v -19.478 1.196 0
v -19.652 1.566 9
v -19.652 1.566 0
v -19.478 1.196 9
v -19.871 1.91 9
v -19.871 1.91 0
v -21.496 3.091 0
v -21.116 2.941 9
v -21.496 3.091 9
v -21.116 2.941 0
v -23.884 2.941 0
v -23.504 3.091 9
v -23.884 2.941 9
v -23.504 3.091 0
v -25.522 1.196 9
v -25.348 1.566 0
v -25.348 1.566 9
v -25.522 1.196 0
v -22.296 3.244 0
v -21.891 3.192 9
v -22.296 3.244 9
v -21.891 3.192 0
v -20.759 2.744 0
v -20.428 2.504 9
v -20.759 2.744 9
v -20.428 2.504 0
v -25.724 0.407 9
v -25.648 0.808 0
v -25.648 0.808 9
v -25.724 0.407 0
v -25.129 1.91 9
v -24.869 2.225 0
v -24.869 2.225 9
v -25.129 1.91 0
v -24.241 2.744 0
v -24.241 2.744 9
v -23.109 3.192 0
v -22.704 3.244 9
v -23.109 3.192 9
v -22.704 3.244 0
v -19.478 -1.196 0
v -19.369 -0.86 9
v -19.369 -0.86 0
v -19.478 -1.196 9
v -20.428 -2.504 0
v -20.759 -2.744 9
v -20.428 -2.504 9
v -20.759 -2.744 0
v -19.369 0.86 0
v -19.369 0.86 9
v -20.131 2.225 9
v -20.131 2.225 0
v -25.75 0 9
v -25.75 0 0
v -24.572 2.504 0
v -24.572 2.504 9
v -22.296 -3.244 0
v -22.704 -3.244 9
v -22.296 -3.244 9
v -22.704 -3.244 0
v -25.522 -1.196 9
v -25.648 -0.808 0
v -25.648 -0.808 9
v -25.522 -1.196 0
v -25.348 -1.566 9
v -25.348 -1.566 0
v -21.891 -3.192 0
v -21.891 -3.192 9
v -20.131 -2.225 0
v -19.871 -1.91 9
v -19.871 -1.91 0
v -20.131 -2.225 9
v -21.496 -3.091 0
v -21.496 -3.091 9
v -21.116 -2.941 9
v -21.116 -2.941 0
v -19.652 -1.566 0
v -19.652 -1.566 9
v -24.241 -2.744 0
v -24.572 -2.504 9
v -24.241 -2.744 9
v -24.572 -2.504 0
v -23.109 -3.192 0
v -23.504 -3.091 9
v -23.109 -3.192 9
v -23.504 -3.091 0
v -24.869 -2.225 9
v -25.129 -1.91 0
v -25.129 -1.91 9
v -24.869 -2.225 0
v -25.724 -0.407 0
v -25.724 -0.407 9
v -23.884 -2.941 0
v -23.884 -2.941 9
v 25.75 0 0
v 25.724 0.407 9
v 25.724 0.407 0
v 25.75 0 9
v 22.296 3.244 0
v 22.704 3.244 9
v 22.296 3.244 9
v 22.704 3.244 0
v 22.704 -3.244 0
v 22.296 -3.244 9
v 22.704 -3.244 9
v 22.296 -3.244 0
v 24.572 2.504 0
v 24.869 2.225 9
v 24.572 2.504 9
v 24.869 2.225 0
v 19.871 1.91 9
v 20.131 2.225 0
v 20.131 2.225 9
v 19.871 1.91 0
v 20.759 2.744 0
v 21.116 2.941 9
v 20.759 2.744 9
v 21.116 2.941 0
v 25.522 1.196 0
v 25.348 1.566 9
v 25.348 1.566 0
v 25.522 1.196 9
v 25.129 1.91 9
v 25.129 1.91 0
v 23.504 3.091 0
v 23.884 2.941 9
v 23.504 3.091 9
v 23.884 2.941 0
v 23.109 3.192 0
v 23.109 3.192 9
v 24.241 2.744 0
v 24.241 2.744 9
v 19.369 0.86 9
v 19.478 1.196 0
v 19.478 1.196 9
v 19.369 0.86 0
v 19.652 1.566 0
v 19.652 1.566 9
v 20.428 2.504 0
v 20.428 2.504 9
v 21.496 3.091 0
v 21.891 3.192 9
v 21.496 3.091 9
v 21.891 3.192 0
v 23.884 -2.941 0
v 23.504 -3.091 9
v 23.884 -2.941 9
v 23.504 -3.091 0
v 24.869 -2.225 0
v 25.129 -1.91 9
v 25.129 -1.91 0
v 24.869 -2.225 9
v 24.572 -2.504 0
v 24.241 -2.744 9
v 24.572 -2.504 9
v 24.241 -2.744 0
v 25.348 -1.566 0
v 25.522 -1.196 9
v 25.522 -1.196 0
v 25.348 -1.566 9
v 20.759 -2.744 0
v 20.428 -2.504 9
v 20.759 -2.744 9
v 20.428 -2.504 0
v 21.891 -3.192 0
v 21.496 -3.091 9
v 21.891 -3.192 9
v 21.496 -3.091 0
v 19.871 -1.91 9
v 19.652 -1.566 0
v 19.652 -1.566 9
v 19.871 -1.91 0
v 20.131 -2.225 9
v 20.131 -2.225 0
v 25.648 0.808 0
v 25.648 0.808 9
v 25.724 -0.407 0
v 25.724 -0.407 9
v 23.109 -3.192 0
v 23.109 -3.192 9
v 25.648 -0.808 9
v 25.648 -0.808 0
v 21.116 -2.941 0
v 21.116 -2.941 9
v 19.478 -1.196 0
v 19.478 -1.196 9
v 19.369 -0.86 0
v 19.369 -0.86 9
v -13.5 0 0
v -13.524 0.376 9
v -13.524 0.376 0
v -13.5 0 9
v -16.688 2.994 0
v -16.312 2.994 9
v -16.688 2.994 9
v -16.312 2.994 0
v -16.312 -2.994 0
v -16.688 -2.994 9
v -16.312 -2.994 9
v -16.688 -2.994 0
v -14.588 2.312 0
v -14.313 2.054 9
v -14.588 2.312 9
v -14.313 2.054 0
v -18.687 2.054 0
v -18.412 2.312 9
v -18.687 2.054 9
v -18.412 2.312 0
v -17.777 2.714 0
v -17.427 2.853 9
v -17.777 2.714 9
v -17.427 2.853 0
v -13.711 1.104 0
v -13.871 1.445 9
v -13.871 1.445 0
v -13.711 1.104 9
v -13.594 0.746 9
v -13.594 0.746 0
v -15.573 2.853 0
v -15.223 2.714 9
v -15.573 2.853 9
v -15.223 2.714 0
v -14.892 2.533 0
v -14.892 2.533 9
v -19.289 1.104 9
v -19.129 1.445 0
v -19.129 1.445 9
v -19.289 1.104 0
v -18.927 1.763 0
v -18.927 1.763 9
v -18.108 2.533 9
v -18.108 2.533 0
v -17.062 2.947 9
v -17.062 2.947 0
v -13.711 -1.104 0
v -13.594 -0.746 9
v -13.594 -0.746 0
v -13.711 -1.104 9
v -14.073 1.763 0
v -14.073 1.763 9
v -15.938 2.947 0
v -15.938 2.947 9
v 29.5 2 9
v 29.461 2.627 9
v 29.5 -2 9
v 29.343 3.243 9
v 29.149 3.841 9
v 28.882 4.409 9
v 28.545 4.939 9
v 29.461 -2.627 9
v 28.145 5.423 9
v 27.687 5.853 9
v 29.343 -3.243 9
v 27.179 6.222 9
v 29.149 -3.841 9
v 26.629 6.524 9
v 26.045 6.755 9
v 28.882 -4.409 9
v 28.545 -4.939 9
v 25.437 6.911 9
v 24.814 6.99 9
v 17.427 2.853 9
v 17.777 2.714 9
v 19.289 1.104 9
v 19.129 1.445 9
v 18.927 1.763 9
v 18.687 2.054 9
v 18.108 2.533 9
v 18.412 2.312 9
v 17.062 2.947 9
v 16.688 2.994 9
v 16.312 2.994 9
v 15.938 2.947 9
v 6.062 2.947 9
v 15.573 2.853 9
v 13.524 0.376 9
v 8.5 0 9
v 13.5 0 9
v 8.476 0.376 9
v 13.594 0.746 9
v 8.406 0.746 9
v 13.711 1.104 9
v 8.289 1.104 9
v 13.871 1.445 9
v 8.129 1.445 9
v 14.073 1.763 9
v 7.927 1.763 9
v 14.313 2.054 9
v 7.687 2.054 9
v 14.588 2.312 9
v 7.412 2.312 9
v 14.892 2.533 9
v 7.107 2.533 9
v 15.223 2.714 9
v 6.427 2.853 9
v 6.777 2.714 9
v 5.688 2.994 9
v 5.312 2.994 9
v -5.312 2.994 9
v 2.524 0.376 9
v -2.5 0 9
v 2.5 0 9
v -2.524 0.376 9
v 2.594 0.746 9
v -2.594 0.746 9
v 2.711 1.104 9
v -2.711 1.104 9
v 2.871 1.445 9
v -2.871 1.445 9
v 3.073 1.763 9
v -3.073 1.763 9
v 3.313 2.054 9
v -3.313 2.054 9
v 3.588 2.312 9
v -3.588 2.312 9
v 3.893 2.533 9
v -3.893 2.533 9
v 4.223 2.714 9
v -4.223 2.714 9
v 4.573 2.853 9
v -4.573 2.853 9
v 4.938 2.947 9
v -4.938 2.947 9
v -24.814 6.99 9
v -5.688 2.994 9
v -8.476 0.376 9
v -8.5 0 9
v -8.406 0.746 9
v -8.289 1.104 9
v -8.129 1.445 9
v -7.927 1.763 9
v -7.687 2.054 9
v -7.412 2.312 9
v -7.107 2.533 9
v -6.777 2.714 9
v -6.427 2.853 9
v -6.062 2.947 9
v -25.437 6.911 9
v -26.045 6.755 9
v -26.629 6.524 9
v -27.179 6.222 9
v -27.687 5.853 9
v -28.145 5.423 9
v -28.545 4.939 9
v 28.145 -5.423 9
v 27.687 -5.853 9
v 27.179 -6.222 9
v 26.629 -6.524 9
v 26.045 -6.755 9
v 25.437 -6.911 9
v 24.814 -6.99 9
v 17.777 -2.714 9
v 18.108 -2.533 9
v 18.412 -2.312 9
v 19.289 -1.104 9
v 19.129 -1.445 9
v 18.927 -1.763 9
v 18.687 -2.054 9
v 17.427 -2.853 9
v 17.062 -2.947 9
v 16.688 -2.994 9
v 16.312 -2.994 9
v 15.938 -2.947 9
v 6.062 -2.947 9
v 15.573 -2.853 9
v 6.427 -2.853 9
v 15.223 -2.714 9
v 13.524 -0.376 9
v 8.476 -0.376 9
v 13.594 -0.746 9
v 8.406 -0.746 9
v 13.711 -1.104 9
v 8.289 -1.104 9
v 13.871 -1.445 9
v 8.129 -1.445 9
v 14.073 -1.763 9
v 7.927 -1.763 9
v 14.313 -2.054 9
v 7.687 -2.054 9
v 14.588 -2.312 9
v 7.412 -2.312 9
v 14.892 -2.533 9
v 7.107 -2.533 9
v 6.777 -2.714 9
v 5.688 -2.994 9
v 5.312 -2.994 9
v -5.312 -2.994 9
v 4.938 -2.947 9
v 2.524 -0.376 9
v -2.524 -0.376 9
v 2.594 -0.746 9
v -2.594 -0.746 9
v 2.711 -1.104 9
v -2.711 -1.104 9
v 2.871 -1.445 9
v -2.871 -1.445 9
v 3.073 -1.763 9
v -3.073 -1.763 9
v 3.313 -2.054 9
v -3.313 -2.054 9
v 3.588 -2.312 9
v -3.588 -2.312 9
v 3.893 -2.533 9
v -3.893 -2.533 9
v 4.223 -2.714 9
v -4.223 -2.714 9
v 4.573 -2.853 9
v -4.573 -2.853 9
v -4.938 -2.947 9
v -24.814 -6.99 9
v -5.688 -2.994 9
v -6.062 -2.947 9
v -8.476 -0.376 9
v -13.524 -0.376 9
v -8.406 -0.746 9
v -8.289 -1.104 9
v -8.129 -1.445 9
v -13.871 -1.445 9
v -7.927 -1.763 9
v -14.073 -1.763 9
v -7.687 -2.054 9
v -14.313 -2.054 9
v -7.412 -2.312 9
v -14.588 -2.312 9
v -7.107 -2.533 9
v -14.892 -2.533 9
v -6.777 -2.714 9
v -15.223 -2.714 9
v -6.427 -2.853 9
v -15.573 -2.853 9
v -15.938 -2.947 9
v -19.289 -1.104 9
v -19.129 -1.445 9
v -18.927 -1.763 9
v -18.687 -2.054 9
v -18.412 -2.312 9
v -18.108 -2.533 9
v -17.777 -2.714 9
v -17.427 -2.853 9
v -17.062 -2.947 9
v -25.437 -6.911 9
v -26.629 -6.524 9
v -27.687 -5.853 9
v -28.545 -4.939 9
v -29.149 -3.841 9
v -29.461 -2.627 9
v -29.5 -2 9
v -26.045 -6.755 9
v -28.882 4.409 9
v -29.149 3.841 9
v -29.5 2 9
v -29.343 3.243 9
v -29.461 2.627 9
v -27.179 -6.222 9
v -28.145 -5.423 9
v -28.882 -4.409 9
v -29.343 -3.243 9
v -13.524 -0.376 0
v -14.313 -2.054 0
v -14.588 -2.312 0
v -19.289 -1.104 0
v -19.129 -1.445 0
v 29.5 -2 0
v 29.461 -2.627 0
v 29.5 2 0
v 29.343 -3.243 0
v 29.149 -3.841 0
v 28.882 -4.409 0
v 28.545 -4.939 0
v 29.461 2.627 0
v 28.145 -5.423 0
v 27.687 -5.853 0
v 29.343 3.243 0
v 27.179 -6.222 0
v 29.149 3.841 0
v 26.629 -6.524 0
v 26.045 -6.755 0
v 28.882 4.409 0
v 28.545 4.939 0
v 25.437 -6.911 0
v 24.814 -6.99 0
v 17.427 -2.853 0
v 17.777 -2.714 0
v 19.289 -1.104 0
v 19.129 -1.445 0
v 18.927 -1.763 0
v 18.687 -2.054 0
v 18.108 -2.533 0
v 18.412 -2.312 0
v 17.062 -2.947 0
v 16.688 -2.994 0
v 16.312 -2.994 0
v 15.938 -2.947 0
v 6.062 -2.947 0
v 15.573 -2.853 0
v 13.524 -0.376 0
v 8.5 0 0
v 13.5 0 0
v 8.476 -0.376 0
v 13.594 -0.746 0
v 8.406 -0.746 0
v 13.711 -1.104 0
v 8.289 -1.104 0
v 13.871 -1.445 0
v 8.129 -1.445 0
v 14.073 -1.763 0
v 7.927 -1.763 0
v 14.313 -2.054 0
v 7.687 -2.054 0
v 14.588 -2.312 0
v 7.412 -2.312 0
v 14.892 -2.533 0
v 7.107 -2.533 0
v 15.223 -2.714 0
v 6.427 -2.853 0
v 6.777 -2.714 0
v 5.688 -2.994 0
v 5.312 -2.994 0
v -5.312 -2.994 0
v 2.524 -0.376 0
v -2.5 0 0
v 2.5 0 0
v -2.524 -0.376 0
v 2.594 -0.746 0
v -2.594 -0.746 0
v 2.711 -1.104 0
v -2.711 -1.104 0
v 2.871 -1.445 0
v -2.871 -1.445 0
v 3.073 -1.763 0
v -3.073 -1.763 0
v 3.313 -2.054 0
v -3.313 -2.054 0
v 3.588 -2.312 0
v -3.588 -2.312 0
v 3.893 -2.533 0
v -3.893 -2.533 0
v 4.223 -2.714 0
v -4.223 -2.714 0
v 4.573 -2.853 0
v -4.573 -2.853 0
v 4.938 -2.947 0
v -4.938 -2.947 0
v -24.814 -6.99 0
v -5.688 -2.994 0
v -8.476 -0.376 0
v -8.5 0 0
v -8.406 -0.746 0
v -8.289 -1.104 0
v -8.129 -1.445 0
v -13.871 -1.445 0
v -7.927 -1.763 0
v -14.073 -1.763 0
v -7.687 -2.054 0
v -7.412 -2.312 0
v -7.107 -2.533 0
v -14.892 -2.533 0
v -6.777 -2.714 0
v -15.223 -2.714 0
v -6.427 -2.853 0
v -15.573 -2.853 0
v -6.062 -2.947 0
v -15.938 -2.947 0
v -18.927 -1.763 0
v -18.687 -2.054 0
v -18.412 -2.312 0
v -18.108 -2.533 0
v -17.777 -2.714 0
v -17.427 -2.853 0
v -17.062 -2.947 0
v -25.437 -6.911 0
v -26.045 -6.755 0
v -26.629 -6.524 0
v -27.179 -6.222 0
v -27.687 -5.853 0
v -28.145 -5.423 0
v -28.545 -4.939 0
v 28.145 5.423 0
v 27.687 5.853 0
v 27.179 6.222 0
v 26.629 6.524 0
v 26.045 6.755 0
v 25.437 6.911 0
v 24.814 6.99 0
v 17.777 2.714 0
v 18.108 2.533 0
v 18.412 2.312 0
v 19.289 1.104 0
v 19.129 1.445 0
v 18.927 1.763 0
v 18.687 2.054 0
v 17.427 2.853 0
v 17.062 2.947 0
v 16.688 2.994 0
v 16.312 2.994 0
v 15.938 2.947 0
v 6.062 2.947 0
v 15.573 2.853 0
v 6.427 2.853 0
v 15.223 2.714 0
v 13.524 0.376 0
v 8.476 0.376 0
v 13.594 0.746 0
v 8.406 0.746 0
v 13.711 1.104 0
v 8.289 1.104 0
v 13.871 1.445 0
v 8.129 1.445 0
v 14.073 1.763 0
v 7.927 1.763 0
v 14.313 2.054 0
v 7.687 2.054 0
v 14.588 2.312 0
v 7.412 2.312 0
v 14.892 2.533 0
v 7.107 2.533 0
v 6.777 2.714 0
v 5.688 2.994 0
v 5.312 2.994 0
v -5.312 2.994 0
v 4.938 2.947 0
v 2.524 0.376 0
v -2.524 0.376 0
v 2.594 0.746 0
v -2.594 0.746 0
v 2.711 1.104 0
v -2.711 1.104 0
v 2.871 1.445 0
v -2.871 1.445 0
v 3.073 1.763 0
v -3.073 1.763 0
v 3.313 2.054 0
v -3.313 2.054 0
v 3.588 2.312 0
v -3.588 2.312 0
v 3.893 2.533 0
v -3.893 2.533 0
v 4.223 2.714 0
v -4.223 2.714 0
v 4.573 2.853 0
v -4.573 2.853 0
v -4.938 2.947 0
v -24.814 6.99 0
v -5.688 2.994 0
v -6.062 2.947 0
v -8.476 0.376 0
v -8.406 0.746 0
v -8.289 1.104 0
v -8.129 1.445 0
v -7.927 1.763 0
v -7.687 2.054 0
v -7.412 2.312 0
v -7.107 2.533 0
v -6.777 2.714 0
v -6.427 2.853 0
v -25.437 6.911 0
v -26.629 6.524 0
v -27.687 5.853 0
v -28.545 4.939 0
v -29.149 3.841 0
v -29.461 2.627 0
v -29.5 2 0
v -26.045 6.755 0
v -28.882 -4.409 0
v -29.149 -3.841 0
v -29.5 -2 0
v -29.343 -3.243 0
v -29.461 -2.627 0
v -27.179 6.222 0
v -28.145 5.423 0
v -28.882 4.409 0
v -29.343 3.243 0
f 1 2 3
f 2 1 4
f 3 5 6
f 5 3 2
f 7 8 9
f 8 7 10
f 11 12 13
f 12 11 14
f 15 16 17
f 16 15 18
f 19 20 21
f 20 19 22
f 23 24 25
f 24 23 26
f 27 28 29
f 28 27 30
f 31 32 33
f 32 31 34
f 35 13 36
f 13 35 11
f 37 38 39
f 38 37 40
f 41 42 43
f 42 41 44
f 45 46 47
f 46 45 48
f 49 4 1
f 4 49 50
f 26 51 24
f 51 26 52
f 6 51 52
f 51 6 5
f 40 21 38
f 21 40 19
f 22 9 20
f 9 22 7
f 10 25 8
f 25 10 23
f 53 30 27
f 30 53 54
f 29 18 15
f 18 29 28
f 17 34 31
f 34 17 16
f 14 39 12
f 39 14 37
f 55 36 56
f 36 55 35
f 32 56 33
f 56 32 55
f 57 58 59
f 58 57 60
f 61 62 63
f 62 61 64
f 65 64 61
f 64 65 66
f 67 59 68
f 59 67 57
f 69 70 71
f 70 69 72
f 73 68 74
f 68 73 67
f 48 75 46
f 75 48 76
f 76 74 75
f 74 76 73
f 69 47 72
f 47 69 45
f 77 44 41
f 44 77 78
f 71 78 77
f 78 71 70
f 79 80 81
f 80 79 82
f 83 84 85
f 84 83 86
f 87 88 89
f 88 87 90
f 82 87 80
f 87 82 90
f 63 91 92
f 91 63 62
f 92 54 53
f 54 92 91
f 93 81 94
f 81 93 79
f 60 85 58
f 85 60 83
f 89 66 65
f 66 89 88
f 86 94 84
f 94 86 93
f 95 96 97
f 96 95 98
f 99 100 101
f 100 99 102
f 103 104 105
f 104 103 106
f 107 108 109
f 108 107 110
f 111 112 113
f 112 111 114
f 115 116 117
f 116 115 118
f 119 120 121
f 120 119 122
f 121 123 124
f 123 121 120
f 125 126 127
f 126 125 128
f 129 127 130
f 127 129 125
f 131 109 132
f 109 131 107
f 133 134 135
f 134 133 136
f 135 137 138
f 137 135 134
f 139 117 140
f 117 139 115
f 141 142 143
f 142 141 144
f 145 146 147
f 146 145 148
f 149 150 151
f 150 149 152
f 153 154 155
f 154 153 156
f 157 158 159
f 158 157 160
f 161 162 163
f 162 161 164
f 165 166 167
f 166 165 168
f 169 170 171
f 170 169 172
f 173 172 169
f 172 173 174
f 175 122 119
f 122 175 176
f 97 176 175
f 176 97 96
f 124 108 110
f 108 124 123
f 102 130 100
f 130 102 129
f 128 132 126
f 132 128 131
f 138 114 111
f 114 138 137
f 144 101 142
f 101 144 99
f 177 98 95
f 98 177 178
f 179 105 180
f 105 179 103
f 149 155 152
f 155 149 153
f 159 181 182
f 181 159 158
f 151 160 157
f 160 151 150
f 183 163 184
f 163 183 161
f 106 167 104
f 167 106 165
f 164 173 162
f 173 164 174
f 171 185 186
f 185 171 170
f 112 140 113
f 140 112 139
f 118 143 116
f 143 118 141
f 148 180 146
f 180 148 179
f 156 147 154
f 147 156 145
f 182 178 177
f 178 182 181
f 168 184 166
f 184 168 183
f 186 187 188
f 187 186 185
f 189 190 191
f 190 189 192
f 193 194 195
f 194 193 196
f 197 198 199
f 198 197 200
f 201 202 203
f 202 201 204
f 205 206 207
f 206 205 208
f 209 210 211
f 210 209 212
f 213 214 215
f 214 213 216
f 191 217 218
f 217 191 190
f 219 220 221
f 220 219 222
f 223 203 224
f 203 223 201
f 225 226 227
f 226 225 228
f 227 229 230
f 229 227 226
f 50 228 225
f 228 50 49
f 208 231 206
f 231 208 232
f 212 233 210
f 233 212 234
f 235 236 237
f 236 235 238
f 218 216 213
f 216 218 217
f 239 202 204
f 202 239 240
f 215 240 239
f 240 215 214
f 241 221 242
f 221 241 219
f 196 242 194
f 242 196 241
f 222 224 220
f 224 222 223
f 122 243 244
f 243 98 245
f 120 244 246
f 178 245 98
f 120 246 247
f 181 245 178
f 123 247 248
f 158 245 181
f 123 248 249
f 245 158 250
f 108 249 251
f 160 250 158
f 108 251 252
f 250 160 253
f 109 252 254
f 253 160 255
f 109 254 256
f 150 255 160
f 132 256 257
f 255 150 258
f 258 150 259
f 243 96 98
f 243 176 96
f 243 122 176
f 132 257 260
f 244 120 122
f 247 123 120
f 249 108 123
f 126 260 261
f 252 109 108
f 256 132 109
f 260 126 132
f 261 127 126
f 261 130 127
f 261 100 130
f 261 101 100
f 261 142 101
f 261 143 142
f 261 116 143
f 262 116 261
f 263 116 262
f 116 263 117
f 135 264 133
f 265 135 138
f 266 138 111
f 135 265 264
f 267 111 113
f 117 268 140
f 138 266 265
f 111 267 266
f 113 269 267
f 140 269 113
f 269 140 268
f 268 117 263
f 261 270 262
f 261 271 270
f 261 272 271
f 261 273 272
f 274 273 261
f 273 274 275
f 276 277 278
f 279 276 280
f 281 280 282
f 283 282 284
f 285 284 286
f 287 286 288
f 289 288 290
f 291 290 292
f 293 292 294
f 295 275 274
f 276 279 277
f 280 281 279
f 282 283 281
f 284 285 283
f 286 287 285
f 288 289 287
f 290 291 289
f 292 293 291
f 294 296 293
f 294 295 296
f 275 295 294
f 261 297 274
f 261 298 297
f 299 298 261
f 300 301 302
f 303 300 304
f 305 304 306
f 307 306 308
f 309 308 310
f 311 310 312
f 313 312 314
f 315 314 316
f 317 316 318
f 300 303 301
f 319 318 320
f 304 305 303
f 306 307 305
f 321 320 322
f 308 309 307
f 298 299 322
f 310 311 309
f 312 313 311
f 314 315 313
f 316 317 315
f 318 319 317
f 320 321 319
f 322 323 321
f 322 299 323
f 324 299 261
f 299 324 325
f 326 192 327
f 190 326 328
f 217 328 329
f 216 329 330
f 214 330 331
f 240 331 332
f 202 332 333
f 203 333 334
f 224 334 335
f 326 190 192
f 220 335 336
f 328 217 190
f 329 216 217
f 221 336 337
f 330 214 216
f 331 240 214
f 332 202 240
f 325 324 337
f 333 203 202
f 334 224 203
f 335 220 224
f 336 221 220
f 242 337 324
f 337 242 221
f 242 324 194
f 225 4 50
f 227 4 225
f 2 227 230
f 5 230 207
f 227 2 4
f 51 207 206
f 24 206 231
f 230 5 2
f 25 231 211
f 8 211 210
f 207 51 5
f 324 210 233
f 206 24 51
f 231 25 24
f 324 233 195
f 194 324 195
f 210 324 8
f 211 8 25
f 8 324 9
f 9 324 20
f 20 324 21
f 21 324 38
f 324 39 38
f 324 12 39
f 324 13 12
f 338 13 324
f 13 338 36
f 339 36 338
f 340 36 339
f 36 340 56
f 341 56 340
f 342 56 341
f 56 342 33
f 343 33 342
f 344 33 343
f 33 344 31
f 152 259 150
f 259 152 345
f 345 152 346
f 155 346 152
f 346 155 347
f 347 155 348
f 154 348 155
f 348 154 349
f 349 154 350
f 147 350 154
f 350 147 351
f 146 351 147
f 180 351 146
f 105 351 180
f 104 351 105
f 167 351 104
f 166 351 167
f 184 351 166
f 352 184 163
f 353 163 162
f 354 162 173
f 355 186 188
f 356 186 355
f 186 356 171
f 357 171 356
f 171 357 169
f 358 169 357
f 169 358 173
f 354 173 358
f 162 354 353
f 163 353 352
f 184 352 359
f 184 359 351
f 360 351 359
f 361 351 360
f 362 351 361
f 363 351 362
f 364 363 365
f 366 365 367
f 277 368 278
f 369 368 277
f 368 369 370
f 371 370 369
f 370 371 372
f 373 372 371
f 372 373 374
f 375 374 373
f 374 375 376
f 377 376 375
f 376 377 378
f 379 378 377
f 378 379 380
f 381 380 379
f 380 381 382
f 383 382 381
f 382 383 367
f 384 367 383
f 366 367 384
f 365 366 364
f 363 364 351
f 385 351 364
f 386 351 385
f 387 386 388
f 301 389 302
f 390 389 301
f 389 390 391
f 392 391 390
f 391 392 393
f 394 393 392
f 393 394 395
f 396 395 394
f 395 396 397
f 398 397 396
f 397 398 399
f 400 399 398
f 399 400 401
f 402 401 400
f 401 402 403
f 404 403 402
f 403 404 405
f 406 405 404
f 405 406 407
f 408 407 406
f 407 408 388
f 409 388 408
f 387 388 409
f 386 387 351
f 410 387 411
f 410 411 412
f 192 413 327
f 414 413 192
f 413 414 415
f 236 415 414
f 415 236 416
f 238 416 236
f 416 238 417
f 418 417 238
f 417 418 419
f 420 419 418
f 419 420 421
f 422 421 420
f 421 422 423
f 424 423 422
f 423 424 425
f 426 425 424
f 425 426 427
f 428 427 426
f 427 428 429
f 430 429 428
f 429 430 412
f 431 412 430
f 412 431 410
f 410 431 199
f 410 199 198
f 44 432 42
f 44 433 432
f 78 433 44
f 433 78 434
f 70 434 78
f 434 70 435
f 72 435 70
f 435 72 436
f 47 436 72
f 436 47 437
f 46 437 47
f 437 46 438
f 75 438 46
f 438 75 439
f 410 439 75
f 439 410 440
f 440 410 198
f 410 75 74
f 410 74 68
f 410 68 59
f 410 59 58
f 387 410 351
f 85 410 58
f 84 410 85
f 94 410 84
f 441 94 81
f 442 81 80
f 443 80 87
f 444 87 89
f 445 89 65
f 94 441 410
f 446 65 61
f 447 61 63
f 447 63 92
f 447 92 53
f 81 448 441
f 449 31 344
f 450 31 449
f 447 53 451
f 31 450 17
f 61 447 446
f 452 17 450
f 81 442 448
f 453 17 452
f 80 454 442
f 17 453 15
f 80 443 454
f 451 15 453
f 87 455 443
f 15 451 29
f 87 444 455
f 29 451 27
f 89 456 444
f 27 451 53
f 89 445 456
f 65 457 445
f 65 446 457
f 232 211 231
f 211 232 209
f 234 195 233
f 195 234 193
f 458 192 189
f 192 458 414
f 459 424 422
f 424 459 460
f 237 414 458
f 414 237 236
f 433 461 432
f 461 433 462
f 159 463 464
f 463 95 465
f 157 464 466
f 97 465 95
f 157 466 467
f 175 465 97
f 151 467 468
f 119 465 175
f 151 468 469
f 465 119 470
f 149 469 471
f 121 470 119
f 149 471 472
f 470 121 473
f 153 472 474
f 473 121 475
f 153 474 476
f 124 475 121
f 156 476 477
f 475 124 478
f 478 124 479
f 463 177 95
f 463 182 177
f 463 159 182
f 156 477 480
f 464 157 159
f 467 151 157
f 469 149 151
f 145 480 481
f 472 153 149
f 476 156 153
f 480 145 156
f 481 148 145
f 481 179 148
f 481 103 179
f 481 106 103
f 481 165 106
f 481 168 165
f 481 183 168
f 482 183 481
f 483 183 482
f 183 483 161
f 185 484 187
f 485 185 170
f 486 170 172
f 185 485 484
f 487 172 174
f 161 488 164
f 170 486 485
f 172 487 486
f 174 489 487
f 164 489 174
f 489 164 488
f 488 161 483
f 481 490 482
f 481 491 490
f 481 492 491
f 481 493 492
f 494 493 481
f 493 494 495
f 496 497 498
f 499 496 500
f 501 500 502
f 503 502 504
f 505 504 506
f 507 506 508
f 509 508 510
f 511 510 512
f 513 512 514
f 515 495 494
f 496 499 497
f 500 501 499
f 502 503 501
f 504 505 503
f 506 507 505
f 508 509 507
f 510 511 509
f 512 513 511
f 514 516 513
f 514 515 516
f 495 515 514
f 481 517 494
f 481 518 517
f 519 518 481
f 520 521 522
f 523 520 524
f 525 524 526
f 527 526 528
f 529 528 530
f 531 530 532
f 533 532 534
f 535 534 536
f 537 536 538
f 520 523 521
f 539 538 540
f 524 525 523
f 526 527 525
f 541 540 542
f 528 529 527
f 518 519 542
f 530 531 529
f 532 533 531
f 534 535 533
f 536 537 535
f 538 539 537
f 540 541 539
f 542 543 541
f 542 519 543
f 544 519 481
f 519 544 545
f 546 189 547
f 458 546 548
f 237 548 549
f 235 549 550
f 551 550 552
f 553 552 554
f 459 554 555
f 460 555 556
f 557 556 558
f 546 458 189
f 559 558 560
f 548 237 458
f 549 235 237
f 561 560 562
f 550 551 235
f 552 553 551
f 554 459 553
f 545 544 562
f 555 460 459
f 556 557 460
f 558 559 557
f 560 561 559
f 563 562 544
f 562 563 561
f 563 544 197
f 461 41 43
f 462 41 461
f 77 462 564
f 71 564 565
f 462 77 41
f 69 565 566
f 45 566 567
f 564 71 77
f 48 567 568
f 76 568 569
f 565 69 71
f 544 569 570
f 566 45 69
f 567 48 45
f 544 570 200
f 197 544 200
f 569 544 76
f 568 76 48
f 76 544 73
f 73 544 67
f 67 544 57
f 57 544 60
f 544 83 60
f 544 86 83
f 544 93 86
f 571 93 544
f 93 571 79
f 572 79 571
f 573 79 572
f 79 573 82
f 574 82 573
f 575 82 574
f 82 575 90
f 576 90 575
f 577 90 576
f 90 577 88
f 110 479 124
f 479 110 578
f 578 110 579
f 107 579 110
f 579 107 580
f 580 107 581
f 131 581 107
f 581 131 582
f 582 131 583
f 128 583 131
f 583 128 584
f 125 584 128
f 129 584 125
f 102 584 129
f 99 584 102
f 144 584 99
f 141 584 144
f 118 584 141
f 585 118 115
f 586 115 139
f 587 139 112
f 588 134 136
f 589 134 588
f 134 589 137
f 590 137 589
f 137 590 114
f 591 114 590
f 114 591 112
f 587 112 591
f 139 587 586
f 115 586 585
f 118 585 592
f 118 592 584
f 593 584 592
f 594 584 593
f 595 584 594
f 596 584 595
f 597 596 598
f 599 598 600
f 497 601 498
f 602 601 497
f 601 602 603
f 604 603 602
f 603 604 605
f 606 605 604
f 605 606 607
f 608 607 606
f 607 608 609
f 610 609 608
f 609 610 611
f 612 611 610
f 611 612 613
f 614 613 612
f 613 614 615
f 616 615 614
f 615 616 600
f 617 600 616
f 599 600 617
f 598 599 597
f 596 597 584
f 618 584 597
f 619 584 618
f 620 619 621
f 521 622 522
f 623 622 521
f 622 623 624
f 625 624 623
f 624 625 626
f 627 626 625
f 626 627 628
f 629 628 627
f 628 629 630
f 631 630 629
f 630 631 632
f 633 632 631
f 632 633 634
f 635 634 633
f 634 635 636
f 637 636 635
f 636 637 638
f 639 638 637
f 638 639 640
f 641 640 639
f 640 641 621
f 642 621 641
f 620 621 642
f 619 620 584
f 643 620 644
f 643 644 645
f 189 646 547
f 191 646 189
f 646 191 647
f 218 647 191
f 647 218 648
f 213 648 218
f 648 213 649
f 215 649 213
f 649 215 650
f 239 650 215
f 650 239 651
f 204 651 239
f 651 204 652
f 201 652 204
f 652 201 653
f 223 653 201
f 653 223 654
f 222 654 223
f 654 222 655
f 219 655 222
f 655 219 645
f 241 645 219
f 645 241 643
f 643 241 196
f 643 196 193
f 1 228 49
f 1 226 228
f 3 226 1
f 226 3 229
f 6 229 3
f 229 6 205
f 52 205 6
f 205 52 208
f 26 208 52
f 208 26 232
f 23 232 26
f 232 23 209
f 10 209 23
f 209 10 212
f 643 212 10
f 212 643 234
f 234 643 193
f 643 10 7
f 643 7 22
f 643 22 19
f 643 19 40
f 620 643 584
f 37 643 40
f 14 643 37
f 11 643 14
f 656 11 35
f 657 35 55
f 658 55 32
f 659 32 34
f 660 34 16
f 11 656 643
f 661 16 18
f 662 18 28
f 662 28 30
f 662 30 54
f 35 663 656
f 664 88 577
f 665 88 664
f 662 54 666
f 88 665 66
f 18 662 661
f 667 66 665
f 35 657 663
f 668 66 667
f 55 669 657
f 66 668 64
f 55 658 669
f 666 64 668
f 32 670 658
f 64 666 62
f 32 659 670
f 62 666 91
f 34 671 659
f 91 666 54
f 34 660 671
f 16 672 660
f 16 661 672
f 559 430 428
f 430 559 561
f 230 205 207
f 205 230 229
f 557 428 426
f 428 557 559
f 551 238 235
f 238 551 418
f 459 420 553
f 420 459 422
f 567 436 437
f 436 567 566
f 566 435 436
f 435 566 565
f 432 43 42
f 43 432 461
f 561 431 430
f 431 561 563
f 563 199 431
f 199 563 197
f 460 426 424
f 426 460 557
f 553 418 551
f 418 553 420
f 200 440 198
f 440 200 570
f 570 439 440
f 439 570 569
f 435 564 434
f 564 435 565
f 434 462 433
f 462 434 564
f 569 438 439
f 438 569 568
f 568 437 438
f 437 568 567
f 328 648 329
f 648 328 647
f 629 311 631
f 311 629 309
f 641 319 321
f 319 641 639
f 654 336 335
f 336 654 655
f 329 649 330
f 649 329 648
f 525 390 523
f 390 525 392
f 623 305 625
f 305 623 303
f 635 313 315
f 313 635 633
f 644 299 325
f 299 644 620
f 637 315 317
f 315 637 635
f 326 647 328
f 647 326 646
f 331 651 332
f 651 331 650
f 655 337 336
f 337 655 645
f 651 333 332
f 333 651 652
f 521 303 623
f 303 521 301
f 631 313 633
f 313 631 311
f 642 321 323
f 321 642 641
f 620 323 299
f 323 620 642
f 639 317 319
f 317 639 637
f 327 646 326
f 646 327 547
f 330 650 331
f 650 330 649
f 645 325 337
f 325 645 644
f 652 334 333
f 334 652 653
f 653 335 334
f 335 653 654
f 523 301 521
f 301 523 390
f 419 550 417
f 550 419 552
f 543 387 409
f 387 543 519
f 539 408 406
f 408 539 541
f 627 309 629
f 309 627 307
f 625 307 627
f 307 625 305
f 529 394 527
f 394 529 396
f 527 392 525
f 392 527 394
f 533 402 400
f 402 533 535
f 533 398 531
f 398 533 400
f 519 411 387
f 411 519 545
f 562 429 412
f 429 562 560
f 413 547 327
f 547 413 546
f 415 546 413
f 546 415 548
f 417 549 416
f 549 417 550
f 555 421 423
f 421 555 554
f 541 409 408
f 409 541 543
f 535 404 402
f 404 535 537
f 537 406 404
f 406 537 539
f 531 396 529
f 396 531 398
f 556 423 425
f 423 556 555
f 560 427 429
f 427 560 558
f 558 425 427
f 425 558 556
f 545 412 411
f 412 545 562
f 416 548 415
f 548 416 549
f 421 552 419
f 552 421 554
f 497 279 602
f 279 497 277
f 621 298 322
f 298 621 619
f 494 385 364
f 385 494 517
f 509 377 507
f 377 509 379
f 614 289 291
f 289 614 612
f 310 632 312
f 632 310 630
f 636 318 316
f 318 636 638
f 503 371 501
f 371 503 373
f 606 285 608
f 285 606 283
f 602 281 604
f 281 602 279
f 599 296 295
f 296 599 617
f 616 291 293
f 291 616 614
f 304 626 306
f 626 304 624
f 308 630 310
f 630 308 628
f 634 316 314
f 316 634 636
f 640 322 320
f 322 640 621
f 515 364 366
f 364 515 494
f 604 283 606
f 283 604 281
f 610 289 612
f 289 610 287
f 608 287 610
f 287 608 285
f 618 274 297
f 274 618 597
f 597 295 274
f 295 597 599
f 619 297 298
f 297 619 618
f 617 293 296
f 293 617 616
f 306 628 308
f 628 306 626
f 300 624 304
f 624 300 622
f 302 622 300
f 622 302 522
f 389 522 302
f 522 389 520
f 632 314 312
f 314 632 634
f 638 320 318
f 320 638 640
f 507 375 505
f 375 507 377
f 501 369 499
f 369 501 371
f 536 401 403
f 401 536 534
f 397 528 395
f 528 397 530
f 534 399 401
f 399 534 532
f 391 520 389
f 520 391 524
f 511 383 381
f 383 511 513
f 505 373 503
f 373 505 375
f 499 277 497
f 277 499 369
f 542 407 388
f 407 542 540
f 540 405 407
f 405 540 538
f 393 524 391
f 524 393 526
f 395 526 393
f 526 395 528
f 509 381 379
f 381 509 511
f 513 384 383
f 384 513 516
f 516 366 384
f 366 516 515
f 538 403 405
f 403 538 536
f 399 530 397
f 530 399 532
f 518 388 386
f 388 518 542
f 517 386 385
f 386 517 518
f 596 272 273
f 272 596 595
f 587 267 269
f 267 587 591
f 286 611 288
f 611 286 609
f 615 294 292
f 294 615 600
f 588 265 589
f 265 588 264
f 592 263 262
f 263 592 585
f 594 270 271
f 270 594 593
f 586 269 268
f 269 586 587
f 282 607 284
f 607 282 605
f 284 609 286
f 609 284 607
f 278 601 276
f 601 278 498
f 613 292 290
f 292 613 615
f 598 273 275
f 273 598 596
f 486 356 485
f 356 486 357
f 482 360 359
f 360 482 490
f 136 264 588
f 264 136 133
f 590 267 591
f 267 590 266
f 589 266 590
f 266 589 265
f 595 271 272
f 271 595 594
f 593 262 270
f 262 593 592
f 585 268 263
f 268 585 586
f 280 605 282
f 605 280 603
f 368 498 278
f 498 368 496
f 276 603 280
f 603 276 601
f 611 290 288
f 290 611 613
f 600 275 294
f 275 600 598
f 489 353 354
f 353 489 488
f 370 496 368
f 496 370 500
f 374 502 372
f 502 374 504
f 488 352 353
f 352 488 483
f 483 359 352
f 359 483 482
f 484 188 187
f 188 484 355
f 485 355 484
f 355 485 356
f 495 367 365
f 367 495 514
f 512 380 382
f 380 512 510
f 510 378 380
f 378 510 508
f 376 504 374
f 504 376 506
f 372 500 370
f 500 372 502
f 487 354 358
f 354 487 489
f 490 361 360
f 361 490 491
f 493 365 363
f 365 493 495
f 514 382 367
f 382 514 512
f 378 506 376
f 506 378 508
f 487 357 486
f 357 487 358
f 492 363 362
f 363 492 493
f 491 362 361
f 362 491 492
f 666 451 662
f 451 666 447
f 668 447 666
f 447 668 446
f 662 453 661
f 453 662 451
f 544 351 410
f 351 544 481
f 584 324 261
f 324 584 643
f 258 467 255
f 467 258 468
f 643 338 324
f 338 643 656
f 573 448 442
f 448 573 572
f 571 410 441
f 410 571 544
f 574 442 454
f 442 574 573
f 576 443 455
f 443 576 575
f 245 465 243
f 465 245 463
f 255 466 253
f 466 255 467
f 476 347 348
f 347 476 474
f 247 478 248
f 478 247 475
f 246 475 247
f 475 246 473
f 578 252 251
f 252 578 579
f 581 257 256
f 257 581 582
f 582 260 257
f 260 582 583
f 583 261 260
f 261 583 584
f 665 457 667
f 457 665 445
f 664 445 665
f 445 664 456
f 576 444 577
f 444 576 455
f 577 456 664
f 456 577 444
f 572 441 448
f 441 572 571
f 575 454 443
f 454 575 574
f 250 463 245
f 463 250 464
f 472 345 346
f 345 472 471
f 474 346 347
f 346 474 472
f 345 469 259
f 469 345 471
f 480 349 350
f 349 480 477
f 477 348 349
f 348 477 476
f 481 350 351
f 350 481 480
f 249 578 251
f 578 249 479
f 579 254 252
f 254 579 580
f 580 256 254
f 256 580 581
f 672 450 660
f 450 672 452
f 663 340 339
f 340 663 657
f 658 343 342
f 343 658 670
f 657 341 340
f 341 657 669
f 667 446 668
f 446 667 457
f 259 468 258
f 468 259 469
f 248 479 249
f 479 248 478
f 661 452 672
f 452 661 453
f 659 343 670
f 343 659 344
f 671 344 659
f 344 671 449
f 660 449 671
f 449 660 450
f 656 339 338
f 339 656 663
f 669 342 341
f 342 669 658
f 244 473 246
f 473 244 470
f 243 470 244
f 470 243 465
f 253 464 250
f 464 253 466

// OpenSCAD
$fn = 50;


difference() {
	union() {
		hull() {
			translate(v = [-24.5000000000, 2.0000000000, 0]) {
				cylinder(h = 9, r = 5);
			}
			translate(v = [24.5000000000, 2.0000000000, 0]) {
				cylinder(h = 9, r = 5);
			}
			translate(v = [-24.5000000000, -2.0000000000, 0]) {
				cylinder(h = 9, r = 5);
			}
			translate(v = [24.5000000000, -2.0000000000, 0]) {
				cylinder(h = 9, r = 5);
			}
		}
	}
	union() {
		#translate(v = [-22.5000000000, 0.0000000000, -100.0000000000]) {
			cylinder(h = 200, r = 3.2500000000);
		}
		#translate(v = [-22.5000000000, 0.0000000000, -100.0000000000]) {
			cylinder(h = 200, r = 3.2500000000);
		}
		#translate(v = [22.5000000000, 0.0000000000, -100.0000000000]) {
			cylinder(h = 200, r = 3.2500000000);
		}
		#translate(v = [22.5000000000, 0.0000000000, -100.0000000000]) {
			cylinder(h = 200, r = 3.2500000000);
		}
		#translate(v = [-16.5000000000, 0, 0]) {
			cylinder(h = 9, r = 3.0000000000);
		}
		#translate(v = [-5.5000000000, 0, 0]) {
			cylinder(h = 9, r = 3.0000000000);
		}
		#translate(v = [5.5000000000, 0, 0]) {
			cylinder(h = 9, r = 3.0000000000);
		}
		#translate(v = [16.5000000000, 0, 0]) {
			cylinder(h = 9, r = 3.0000000000);
		}
	}
}
